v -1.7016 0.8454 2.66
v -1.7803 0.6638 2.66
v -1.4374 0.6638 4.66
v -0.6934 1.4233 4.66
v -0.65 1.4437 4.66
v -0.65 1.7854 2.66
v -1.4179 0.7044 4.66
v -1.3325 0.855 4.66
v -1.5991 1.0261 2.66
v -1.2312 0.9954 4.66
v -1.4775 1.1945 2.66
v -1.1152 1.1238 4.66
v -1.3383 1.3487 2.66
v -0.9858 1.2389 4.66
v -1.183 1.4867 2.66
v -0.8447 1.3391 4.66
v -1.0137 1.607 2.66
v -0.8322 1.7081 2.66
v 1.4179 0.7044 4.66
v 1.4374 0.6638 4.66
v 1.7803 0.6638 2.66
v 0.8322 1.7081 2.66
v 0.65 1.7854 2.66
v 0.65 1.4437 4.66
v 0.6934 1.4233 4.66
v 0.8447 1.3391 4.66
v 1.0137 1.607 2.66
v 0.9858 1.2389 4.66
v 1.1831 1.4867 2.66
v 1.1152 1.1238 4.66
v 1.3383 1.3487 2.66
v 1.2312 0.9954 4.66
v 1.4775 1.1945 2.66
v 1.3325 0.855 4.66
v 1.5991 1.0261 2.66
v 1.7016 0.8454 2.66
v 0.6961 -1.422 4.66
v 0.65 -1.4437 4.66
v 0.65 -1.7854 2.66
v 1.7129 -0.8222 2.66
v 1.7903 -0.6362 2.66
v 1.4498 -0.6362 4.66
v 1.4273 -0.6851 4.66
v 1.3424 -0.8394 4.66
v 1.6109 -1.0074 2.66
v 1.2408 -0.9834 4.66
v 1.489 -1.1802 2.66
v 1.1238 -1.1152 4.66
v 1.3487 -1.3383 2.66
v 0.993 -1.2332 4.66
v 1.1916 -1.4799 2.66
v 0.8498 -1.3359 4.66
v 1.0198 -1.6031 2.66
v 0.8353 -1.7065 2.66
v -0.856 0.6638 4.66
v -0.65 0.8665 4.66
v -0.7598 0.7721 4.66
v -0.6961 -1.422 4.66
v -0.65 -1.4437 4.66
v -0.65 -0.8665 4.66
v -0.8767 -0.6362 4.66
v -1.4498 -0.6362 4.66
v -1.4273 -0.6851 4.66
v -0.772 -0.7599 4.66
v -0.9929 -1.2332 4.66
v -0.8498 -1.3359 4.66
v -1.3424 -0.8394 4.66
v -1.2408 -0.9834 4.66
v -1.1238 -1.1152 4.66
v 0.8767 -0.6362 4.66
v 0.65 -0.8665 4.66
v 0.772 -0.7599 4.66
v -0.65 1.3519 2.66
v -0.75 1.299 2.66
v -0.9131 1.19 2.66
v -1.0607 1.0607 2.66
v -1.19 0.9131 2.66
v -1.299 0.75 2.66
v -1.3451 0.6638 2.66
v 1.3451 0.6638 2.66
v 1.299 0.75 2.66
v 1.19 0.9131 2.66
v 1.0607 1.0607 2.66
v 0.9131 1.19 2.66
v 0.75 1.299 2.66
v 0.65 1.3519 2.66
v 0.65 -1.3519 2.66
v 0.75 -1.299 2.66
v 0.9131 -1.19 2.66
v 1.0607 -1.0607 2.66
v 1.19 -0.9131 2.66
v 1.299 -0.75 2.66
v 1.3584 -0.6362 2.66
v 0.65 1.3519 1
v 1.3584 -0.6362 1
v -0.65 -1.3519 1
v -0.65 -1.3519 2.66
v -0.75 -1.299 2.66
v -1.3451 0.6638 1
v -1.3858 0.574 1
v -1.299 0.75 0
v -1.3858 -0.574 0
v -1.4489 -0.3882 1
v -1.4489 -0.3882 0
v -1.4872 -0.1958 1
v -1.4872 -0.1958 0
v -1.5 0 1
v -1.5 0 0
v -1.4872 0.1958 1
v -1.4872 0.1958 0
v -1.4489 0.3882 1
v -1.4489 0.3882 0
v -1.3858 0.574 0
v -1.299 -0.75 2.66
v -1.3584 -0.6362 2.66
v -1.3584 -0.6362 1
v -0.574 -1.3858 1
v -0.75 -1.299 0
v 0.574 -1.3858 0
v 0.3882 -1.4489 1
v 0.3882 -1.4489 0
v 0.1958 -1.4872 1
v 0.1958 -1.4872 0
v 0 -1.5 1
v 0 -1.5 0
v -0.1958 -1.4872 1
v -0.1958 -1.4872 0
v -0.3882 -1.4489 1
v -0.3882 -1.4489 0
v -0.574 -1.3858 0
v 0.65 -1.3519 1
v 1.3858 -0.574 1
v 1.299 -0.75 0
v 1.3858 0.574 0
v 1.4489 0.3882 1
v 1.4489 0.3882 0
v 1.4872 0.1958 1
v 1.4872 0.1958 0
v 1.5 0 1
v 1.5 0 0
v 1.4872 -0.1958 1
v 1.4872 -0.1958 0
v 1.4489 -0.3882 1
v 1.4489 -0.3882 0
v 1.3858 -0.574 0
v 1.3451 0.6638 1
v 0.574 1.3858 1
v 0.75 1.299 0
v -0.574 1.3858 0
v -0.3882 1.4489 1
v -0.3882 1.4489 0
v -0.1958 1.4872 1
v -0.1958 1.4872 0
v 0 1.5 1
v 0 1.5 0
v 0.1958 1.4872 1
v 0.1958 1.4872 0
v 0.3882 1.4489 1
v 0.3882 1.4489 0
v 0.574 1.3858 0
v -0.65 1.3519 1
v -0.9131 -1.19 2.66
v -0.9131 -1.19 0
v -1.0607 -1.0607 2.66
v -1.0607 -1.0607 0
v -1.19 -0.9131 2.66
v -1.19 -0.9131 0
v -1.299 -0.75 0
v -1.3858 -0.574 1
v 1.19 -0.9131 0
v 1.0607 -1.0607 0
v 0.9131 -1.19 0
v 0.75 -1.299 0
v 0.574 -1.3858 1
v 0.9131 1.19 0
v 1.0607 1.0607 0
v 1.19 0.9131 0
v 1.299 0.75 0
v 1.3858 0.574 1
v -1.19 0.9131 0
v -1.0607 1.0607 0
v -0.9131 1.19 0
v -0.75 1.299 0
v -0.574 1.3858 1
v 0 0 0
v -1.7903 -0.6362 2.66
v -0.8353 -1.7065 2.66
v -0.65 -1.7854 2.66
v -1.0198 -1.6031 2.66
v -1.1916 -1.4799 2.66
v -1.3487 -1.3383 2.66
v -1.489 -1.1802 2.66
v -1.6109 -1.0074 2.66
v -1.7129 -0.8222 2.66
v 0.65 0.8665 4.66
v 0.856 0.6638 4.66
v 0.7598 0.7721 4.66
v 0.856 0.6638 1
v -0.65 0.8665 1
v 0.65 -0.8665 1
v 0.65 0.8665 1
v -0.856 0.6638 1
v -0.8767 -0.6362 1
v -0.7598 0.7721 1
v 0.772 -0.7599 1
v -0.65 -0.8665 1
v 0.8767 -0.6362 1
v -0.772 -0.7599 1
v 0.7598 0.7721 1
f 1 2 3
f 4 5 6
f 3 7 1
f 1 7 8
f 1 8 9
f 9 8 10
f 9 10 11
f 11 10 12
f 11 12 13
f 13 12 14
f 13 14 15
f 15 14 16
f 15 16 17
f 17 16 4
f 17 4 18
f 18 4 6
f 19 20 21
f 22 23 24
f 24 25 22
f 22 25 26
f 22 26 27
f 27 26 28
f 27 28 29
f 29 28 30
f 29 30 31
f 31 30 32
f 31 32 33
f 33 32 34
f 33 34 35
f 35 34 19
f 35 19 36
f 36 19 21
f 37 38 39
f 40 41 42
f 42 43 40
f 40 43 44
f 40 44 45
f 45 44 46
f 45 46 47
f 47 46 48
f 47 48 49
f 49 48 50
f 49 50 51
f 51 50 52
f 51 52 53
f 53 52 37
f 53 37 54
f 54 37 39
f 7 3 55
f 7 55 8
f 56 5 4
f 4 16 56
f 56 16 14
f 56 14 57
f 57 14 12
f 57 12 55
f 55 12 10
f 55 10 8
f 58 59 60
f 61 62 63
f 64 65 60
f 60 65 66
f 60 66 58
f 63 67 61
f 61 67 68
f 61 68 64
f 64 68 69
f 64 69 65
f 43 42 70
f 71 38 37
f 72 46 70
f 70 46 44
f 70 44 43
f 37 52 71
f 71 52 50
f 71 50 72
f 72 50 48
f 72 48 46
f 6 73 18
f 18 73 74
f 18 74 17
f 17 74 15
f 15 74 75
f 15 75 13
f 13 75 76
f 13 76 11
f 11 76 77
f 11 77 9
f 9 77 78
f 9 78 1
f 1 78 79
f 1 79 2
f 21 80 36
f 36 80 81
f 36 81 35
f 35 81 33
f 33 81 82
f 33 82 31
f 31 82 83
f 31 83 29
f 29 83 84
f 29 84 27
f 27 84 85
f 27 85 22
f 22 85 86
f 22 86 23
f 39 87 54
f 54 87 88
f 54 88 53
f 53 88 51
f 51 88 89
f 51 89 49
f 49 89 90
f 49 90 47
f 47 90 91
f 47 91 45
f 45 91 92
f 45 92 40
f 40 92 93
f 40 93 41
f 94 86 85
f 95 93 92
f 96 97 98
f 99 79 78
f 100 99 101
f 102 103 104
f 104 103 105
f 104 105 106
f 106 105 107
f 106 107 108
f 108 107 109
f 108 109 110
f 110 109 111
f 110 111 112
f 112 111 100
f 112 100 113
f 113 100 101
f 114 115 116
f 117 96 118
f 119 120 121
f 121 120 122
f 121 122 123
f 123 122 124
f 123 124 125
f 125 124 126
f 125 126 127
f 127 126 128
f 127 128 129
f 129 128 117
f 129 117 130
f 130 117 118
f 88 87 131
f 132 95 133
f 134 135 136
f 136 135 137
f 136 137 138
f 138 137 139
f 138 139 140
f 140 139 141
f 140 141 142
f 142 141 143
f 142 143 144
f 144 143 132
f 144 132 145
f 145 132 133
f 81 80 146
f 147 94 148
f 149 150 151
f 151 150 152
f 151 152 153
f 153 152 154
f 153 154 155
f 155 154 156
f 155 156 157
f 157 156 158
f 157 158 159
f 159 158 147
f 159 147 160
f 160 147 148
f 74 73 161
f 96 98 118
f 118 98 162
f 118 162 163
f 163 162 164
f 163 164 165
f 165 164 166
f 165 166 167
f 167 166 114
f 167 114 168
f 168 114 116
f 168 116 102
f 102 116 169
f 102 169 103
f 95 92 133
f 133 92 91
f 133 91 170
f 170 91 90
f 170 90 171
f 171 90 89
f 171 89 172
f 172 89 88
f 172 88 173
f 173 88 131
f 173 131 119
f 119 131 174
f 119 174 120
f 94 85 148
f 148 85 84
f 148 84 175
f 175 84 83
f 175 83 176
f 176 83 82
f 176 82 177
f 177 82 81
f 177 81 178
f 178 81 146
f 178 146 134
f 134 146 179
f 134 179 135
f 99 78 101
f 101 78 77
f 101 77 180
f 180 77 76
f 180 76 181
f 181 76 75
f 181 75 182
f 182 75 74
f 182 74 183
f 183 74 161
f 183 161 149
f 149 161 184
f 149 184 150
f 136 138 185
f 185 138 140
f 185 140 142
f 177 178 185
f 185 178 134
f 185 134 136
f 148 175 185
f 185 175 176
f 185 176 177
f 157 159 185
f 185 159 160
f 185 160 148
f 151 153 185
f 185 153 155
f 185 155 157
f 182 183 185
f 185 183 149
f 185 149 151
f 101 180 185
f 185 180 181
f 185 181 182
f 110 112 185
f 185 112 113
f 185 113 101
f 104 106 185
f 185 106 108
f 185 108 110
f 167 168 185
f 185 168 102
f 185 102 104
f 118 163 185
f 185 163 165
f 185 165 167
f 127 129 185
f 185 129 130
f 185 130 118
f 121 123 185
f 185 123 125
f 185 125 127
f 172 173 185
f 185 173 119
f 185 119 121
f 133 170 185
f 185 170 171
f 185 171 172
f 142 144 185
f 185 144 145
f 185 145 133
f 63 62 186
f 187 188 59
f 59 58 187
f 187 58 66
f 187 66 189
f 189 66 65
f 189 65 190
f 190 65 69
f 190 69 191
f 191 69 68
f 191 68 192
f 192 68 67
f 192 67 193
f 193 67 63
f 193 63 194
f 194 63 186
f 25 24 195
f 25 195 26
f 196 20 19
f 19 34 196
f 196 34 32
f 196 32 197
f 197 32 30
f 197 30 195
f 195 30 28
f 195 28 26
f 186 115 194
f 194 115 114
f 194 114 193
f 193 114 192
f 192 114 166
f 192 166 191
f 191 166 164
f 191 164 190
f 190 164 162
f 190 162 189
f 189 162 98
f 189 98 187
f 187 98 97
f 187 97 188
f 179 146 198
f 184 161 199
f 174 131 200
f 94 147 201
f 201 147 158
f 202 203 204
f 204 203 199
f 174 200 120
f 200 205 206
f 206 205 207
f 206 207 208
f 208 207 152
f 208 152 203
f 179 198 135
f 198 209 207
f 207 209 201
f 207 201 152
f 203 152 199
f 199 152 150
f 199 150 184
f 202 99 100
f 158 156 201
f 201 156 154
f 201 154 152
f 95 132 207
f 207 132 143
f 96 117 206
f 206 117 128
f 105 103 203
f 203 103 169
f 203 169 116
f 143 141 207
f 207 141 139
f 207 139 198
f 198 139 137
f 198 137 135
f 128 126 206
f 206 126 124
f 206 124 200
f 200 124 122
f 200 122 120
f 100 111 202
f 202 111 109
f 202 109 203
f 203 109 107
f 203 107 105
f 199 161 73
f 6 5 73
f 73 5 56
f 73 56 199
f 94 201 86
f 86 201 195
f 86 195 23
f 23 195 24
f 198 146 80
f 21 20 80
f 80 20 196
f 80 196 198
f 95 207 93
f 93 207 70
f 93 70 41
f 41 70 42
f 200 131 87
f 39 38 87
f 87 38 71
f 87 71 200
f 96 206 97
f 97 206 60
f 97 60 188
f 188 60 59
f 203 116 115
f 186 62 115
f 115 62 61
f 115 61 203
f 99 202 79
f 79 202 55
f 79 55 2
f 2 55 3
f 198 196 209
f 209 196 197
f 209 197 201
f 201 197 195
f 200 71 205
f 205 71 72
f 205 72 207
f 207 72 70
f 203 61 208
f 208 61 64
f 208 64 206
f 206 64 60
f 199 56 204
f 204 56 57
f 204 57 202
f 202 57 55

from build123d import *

# Parameters (mm, degrees)
SKETCH2_R           = 1.5
BOSS_EXTRUDE1_DEPTH = 2.66
SKETCH3_R           = 1.9
BOSS_EXTRUDE2_DEPTH = 2
BOSS_EXTRUDE2_TAPER = 9
CUT_EXTRUDE1_DEPTH  = 3.66


with BuildPart() as part:
    # Sketch2 → Boss-Extrude1 (new body)
    with BuildSketch(Plane.XY):
        Circle(SKETCH2_R)
    extrude(amount=BOSS_EXTRUDE1_DEPTH)

    # Sketch3 → Boss-Extrude2 (add)
    with BuildSketch(Plane.XY.offset(2.66)):
        Circle(SKETCH3_R)
    extrude(amount=BOSS_EXTRUDE2_DEPTH, taper=BOSS_EXTRUDE2_TAPER)

    # Sketch4 → Cut-Extrude1 (cut)
    with BuildSketch(Plane.XY.offset(4.66)):
        with BuildLine():
            Line((-0.649990442, 2.221316651), (0.649990442, 2.221316651))
            Line((0.649990442, 2.221316651), (0.649990442, 0.866546066))
            ThreePointArc((0.649990442, 0.866546066), (0.759799587, 0.7720714), (0.856021376, 0.663789923))
            Line((0.856021376, 0.663789923), (2.381309482, 0.663789923))
            Line((2.381309482, 0.663789923), (2.381309482, -0.63619096))
            Line((2.381309482, -0.63619096), (0.876727278, -0.63619096))
            ThreePointArc((0.876727278, -0.63619096), (0.771999105, -0.759873042), (0.649990442, -0.866546066))
            Line((0.649990442, -0.866546066), (0.649990442, -2.221316651))
            Line((0.649990442, -2.221316651), (-0.649990442, -2.221316651))
            Line((-0.649990442, -2.221316651), (-0.649990442, -0.866546066))
            ThreePointArc((-0.649990442, -0.866546066), (-0.771994962, -0.759877251), (-0.876720342, -0.636200519))
            Line((-0.876720342, -0.636200519), (-2.381309482, -0.636200519))
            Line((-2.381309482, -0.636200519), (-2.381309482, 0.663799481))
            Line((-2.381309482, 0.663799481), (-0.856013964, 0.663799481))
            ThreePointArc((-0.856013964, 0.663799481), (-0.759795276, 0.772075642), (-0.649990442, 0.866546066))
            Line((-0.649990442, 0.866546066), (-0.649990442, 2.221316651))
        make_face()
    extrude(amount=-CUT_EXTRUDE1_DEPTH, mode=Mode.SUBTRACT)


solid = part.part
